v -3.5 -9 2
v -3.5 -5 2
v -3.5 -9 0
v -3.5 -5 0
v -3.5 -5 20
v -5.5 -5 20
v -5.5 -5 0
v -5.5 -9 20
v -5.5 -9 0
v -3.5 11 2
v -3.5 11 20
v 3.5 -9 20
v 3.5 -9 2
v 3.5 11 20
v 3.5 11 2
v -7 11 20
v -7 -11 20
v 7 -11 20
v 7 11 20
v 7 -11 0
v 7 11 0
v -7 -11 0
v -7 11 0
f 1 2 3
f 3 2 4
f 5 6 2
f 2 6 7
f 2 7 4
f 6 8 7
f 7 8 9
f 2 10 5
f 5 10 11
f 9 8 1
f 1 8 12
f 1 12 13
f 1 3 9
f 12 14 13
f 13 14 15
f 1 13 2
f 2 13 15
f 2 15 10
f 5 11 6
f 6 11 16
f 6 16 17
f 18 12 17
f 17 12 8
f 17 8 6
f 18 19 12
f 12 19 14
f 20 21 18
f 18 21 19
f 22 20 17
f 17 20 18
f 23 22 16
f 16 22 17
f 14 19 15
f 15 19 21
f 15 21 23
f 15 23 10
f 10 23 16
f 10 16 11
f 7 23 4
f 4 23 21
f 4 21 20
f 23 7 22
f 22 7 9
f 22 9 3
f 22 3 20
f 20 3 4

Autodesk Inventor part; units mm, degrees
ref_plane "YZ Plane" through (0, 0, 0) normal (1, 0, 0) x (0, 1, 0)
ref_plane "XZ Plane" through (0, 0, 0) normal (0, 1, 0) x (-1, 0, 0)
ref_plane "XY Plane" through (0, 0, 0) normal (0, 0, 1) x (1, 0, 0)
sketch "Эскиз1" plane through (0, 0, 0) normal (0, 0, 1) x (1, 0, 0)
  line L0 (7, -11) -> (-7, -11)
  line L1 (-7, -11) -> (-7, 11)
  line L2 (-7, 11) -> (7, 11)
  line L3 (7, 11) -> (7, -11)
  line L4 (7, -11) -> (-7, 11) construction
  line L5 (-7, -11) -> (7, 11) construction
  point P0 (0, 0)
  dimension "d0" = 14
  dimension "d1" = 22
extrude "Выдавливание1" add sketch "Эскиз1" along normal blind 20
sketch "Эскиз2" plane through (0, 0, 20) normal (0, 0, 1) x (1, 0, 0)
  line L0 (7, 11) -> (-7, 11) projected
  line L1 (-3.5, 11) -> (3.5, 11)
  line L2 (3.5, 11) -> (3.5, -9)
  line L3 (3.5, -9) -> (-3.5, -9)
  line L4 (-3.5, -9) -> (-3.5, 11)
  point P0 (0, 0)
  dimension "d4" = 20
  dimension "d5" = 7
  dimension "d6" = 3.5
extrude "Выдавливание2" cut sketch "Эскиз2" against normal blind 18
sketch "Эскиз3" plane through (0, 0, 20) normal (0, 0, 1) x (1, 0, 0)
  line L0 (3.5, -9) -> (-3.5, -9) projected
  line L1 (-3.5, -9) -> (-5.5, -9)
  line L2 (-5.5, -9) -> (-5.5, -5)
  line L3 (-5.5, -5) -> (-3.5, -5)
  line L4 (-3.5, -5) -> (-3.5, -9)
  point P0 (0, 0)
  dimension "d9" = 2
  dimension "d10" = 4
extrude "Выдавливание3" cut sketch "Эскиз3" against normal blind 20
properties part number "karmashek"
